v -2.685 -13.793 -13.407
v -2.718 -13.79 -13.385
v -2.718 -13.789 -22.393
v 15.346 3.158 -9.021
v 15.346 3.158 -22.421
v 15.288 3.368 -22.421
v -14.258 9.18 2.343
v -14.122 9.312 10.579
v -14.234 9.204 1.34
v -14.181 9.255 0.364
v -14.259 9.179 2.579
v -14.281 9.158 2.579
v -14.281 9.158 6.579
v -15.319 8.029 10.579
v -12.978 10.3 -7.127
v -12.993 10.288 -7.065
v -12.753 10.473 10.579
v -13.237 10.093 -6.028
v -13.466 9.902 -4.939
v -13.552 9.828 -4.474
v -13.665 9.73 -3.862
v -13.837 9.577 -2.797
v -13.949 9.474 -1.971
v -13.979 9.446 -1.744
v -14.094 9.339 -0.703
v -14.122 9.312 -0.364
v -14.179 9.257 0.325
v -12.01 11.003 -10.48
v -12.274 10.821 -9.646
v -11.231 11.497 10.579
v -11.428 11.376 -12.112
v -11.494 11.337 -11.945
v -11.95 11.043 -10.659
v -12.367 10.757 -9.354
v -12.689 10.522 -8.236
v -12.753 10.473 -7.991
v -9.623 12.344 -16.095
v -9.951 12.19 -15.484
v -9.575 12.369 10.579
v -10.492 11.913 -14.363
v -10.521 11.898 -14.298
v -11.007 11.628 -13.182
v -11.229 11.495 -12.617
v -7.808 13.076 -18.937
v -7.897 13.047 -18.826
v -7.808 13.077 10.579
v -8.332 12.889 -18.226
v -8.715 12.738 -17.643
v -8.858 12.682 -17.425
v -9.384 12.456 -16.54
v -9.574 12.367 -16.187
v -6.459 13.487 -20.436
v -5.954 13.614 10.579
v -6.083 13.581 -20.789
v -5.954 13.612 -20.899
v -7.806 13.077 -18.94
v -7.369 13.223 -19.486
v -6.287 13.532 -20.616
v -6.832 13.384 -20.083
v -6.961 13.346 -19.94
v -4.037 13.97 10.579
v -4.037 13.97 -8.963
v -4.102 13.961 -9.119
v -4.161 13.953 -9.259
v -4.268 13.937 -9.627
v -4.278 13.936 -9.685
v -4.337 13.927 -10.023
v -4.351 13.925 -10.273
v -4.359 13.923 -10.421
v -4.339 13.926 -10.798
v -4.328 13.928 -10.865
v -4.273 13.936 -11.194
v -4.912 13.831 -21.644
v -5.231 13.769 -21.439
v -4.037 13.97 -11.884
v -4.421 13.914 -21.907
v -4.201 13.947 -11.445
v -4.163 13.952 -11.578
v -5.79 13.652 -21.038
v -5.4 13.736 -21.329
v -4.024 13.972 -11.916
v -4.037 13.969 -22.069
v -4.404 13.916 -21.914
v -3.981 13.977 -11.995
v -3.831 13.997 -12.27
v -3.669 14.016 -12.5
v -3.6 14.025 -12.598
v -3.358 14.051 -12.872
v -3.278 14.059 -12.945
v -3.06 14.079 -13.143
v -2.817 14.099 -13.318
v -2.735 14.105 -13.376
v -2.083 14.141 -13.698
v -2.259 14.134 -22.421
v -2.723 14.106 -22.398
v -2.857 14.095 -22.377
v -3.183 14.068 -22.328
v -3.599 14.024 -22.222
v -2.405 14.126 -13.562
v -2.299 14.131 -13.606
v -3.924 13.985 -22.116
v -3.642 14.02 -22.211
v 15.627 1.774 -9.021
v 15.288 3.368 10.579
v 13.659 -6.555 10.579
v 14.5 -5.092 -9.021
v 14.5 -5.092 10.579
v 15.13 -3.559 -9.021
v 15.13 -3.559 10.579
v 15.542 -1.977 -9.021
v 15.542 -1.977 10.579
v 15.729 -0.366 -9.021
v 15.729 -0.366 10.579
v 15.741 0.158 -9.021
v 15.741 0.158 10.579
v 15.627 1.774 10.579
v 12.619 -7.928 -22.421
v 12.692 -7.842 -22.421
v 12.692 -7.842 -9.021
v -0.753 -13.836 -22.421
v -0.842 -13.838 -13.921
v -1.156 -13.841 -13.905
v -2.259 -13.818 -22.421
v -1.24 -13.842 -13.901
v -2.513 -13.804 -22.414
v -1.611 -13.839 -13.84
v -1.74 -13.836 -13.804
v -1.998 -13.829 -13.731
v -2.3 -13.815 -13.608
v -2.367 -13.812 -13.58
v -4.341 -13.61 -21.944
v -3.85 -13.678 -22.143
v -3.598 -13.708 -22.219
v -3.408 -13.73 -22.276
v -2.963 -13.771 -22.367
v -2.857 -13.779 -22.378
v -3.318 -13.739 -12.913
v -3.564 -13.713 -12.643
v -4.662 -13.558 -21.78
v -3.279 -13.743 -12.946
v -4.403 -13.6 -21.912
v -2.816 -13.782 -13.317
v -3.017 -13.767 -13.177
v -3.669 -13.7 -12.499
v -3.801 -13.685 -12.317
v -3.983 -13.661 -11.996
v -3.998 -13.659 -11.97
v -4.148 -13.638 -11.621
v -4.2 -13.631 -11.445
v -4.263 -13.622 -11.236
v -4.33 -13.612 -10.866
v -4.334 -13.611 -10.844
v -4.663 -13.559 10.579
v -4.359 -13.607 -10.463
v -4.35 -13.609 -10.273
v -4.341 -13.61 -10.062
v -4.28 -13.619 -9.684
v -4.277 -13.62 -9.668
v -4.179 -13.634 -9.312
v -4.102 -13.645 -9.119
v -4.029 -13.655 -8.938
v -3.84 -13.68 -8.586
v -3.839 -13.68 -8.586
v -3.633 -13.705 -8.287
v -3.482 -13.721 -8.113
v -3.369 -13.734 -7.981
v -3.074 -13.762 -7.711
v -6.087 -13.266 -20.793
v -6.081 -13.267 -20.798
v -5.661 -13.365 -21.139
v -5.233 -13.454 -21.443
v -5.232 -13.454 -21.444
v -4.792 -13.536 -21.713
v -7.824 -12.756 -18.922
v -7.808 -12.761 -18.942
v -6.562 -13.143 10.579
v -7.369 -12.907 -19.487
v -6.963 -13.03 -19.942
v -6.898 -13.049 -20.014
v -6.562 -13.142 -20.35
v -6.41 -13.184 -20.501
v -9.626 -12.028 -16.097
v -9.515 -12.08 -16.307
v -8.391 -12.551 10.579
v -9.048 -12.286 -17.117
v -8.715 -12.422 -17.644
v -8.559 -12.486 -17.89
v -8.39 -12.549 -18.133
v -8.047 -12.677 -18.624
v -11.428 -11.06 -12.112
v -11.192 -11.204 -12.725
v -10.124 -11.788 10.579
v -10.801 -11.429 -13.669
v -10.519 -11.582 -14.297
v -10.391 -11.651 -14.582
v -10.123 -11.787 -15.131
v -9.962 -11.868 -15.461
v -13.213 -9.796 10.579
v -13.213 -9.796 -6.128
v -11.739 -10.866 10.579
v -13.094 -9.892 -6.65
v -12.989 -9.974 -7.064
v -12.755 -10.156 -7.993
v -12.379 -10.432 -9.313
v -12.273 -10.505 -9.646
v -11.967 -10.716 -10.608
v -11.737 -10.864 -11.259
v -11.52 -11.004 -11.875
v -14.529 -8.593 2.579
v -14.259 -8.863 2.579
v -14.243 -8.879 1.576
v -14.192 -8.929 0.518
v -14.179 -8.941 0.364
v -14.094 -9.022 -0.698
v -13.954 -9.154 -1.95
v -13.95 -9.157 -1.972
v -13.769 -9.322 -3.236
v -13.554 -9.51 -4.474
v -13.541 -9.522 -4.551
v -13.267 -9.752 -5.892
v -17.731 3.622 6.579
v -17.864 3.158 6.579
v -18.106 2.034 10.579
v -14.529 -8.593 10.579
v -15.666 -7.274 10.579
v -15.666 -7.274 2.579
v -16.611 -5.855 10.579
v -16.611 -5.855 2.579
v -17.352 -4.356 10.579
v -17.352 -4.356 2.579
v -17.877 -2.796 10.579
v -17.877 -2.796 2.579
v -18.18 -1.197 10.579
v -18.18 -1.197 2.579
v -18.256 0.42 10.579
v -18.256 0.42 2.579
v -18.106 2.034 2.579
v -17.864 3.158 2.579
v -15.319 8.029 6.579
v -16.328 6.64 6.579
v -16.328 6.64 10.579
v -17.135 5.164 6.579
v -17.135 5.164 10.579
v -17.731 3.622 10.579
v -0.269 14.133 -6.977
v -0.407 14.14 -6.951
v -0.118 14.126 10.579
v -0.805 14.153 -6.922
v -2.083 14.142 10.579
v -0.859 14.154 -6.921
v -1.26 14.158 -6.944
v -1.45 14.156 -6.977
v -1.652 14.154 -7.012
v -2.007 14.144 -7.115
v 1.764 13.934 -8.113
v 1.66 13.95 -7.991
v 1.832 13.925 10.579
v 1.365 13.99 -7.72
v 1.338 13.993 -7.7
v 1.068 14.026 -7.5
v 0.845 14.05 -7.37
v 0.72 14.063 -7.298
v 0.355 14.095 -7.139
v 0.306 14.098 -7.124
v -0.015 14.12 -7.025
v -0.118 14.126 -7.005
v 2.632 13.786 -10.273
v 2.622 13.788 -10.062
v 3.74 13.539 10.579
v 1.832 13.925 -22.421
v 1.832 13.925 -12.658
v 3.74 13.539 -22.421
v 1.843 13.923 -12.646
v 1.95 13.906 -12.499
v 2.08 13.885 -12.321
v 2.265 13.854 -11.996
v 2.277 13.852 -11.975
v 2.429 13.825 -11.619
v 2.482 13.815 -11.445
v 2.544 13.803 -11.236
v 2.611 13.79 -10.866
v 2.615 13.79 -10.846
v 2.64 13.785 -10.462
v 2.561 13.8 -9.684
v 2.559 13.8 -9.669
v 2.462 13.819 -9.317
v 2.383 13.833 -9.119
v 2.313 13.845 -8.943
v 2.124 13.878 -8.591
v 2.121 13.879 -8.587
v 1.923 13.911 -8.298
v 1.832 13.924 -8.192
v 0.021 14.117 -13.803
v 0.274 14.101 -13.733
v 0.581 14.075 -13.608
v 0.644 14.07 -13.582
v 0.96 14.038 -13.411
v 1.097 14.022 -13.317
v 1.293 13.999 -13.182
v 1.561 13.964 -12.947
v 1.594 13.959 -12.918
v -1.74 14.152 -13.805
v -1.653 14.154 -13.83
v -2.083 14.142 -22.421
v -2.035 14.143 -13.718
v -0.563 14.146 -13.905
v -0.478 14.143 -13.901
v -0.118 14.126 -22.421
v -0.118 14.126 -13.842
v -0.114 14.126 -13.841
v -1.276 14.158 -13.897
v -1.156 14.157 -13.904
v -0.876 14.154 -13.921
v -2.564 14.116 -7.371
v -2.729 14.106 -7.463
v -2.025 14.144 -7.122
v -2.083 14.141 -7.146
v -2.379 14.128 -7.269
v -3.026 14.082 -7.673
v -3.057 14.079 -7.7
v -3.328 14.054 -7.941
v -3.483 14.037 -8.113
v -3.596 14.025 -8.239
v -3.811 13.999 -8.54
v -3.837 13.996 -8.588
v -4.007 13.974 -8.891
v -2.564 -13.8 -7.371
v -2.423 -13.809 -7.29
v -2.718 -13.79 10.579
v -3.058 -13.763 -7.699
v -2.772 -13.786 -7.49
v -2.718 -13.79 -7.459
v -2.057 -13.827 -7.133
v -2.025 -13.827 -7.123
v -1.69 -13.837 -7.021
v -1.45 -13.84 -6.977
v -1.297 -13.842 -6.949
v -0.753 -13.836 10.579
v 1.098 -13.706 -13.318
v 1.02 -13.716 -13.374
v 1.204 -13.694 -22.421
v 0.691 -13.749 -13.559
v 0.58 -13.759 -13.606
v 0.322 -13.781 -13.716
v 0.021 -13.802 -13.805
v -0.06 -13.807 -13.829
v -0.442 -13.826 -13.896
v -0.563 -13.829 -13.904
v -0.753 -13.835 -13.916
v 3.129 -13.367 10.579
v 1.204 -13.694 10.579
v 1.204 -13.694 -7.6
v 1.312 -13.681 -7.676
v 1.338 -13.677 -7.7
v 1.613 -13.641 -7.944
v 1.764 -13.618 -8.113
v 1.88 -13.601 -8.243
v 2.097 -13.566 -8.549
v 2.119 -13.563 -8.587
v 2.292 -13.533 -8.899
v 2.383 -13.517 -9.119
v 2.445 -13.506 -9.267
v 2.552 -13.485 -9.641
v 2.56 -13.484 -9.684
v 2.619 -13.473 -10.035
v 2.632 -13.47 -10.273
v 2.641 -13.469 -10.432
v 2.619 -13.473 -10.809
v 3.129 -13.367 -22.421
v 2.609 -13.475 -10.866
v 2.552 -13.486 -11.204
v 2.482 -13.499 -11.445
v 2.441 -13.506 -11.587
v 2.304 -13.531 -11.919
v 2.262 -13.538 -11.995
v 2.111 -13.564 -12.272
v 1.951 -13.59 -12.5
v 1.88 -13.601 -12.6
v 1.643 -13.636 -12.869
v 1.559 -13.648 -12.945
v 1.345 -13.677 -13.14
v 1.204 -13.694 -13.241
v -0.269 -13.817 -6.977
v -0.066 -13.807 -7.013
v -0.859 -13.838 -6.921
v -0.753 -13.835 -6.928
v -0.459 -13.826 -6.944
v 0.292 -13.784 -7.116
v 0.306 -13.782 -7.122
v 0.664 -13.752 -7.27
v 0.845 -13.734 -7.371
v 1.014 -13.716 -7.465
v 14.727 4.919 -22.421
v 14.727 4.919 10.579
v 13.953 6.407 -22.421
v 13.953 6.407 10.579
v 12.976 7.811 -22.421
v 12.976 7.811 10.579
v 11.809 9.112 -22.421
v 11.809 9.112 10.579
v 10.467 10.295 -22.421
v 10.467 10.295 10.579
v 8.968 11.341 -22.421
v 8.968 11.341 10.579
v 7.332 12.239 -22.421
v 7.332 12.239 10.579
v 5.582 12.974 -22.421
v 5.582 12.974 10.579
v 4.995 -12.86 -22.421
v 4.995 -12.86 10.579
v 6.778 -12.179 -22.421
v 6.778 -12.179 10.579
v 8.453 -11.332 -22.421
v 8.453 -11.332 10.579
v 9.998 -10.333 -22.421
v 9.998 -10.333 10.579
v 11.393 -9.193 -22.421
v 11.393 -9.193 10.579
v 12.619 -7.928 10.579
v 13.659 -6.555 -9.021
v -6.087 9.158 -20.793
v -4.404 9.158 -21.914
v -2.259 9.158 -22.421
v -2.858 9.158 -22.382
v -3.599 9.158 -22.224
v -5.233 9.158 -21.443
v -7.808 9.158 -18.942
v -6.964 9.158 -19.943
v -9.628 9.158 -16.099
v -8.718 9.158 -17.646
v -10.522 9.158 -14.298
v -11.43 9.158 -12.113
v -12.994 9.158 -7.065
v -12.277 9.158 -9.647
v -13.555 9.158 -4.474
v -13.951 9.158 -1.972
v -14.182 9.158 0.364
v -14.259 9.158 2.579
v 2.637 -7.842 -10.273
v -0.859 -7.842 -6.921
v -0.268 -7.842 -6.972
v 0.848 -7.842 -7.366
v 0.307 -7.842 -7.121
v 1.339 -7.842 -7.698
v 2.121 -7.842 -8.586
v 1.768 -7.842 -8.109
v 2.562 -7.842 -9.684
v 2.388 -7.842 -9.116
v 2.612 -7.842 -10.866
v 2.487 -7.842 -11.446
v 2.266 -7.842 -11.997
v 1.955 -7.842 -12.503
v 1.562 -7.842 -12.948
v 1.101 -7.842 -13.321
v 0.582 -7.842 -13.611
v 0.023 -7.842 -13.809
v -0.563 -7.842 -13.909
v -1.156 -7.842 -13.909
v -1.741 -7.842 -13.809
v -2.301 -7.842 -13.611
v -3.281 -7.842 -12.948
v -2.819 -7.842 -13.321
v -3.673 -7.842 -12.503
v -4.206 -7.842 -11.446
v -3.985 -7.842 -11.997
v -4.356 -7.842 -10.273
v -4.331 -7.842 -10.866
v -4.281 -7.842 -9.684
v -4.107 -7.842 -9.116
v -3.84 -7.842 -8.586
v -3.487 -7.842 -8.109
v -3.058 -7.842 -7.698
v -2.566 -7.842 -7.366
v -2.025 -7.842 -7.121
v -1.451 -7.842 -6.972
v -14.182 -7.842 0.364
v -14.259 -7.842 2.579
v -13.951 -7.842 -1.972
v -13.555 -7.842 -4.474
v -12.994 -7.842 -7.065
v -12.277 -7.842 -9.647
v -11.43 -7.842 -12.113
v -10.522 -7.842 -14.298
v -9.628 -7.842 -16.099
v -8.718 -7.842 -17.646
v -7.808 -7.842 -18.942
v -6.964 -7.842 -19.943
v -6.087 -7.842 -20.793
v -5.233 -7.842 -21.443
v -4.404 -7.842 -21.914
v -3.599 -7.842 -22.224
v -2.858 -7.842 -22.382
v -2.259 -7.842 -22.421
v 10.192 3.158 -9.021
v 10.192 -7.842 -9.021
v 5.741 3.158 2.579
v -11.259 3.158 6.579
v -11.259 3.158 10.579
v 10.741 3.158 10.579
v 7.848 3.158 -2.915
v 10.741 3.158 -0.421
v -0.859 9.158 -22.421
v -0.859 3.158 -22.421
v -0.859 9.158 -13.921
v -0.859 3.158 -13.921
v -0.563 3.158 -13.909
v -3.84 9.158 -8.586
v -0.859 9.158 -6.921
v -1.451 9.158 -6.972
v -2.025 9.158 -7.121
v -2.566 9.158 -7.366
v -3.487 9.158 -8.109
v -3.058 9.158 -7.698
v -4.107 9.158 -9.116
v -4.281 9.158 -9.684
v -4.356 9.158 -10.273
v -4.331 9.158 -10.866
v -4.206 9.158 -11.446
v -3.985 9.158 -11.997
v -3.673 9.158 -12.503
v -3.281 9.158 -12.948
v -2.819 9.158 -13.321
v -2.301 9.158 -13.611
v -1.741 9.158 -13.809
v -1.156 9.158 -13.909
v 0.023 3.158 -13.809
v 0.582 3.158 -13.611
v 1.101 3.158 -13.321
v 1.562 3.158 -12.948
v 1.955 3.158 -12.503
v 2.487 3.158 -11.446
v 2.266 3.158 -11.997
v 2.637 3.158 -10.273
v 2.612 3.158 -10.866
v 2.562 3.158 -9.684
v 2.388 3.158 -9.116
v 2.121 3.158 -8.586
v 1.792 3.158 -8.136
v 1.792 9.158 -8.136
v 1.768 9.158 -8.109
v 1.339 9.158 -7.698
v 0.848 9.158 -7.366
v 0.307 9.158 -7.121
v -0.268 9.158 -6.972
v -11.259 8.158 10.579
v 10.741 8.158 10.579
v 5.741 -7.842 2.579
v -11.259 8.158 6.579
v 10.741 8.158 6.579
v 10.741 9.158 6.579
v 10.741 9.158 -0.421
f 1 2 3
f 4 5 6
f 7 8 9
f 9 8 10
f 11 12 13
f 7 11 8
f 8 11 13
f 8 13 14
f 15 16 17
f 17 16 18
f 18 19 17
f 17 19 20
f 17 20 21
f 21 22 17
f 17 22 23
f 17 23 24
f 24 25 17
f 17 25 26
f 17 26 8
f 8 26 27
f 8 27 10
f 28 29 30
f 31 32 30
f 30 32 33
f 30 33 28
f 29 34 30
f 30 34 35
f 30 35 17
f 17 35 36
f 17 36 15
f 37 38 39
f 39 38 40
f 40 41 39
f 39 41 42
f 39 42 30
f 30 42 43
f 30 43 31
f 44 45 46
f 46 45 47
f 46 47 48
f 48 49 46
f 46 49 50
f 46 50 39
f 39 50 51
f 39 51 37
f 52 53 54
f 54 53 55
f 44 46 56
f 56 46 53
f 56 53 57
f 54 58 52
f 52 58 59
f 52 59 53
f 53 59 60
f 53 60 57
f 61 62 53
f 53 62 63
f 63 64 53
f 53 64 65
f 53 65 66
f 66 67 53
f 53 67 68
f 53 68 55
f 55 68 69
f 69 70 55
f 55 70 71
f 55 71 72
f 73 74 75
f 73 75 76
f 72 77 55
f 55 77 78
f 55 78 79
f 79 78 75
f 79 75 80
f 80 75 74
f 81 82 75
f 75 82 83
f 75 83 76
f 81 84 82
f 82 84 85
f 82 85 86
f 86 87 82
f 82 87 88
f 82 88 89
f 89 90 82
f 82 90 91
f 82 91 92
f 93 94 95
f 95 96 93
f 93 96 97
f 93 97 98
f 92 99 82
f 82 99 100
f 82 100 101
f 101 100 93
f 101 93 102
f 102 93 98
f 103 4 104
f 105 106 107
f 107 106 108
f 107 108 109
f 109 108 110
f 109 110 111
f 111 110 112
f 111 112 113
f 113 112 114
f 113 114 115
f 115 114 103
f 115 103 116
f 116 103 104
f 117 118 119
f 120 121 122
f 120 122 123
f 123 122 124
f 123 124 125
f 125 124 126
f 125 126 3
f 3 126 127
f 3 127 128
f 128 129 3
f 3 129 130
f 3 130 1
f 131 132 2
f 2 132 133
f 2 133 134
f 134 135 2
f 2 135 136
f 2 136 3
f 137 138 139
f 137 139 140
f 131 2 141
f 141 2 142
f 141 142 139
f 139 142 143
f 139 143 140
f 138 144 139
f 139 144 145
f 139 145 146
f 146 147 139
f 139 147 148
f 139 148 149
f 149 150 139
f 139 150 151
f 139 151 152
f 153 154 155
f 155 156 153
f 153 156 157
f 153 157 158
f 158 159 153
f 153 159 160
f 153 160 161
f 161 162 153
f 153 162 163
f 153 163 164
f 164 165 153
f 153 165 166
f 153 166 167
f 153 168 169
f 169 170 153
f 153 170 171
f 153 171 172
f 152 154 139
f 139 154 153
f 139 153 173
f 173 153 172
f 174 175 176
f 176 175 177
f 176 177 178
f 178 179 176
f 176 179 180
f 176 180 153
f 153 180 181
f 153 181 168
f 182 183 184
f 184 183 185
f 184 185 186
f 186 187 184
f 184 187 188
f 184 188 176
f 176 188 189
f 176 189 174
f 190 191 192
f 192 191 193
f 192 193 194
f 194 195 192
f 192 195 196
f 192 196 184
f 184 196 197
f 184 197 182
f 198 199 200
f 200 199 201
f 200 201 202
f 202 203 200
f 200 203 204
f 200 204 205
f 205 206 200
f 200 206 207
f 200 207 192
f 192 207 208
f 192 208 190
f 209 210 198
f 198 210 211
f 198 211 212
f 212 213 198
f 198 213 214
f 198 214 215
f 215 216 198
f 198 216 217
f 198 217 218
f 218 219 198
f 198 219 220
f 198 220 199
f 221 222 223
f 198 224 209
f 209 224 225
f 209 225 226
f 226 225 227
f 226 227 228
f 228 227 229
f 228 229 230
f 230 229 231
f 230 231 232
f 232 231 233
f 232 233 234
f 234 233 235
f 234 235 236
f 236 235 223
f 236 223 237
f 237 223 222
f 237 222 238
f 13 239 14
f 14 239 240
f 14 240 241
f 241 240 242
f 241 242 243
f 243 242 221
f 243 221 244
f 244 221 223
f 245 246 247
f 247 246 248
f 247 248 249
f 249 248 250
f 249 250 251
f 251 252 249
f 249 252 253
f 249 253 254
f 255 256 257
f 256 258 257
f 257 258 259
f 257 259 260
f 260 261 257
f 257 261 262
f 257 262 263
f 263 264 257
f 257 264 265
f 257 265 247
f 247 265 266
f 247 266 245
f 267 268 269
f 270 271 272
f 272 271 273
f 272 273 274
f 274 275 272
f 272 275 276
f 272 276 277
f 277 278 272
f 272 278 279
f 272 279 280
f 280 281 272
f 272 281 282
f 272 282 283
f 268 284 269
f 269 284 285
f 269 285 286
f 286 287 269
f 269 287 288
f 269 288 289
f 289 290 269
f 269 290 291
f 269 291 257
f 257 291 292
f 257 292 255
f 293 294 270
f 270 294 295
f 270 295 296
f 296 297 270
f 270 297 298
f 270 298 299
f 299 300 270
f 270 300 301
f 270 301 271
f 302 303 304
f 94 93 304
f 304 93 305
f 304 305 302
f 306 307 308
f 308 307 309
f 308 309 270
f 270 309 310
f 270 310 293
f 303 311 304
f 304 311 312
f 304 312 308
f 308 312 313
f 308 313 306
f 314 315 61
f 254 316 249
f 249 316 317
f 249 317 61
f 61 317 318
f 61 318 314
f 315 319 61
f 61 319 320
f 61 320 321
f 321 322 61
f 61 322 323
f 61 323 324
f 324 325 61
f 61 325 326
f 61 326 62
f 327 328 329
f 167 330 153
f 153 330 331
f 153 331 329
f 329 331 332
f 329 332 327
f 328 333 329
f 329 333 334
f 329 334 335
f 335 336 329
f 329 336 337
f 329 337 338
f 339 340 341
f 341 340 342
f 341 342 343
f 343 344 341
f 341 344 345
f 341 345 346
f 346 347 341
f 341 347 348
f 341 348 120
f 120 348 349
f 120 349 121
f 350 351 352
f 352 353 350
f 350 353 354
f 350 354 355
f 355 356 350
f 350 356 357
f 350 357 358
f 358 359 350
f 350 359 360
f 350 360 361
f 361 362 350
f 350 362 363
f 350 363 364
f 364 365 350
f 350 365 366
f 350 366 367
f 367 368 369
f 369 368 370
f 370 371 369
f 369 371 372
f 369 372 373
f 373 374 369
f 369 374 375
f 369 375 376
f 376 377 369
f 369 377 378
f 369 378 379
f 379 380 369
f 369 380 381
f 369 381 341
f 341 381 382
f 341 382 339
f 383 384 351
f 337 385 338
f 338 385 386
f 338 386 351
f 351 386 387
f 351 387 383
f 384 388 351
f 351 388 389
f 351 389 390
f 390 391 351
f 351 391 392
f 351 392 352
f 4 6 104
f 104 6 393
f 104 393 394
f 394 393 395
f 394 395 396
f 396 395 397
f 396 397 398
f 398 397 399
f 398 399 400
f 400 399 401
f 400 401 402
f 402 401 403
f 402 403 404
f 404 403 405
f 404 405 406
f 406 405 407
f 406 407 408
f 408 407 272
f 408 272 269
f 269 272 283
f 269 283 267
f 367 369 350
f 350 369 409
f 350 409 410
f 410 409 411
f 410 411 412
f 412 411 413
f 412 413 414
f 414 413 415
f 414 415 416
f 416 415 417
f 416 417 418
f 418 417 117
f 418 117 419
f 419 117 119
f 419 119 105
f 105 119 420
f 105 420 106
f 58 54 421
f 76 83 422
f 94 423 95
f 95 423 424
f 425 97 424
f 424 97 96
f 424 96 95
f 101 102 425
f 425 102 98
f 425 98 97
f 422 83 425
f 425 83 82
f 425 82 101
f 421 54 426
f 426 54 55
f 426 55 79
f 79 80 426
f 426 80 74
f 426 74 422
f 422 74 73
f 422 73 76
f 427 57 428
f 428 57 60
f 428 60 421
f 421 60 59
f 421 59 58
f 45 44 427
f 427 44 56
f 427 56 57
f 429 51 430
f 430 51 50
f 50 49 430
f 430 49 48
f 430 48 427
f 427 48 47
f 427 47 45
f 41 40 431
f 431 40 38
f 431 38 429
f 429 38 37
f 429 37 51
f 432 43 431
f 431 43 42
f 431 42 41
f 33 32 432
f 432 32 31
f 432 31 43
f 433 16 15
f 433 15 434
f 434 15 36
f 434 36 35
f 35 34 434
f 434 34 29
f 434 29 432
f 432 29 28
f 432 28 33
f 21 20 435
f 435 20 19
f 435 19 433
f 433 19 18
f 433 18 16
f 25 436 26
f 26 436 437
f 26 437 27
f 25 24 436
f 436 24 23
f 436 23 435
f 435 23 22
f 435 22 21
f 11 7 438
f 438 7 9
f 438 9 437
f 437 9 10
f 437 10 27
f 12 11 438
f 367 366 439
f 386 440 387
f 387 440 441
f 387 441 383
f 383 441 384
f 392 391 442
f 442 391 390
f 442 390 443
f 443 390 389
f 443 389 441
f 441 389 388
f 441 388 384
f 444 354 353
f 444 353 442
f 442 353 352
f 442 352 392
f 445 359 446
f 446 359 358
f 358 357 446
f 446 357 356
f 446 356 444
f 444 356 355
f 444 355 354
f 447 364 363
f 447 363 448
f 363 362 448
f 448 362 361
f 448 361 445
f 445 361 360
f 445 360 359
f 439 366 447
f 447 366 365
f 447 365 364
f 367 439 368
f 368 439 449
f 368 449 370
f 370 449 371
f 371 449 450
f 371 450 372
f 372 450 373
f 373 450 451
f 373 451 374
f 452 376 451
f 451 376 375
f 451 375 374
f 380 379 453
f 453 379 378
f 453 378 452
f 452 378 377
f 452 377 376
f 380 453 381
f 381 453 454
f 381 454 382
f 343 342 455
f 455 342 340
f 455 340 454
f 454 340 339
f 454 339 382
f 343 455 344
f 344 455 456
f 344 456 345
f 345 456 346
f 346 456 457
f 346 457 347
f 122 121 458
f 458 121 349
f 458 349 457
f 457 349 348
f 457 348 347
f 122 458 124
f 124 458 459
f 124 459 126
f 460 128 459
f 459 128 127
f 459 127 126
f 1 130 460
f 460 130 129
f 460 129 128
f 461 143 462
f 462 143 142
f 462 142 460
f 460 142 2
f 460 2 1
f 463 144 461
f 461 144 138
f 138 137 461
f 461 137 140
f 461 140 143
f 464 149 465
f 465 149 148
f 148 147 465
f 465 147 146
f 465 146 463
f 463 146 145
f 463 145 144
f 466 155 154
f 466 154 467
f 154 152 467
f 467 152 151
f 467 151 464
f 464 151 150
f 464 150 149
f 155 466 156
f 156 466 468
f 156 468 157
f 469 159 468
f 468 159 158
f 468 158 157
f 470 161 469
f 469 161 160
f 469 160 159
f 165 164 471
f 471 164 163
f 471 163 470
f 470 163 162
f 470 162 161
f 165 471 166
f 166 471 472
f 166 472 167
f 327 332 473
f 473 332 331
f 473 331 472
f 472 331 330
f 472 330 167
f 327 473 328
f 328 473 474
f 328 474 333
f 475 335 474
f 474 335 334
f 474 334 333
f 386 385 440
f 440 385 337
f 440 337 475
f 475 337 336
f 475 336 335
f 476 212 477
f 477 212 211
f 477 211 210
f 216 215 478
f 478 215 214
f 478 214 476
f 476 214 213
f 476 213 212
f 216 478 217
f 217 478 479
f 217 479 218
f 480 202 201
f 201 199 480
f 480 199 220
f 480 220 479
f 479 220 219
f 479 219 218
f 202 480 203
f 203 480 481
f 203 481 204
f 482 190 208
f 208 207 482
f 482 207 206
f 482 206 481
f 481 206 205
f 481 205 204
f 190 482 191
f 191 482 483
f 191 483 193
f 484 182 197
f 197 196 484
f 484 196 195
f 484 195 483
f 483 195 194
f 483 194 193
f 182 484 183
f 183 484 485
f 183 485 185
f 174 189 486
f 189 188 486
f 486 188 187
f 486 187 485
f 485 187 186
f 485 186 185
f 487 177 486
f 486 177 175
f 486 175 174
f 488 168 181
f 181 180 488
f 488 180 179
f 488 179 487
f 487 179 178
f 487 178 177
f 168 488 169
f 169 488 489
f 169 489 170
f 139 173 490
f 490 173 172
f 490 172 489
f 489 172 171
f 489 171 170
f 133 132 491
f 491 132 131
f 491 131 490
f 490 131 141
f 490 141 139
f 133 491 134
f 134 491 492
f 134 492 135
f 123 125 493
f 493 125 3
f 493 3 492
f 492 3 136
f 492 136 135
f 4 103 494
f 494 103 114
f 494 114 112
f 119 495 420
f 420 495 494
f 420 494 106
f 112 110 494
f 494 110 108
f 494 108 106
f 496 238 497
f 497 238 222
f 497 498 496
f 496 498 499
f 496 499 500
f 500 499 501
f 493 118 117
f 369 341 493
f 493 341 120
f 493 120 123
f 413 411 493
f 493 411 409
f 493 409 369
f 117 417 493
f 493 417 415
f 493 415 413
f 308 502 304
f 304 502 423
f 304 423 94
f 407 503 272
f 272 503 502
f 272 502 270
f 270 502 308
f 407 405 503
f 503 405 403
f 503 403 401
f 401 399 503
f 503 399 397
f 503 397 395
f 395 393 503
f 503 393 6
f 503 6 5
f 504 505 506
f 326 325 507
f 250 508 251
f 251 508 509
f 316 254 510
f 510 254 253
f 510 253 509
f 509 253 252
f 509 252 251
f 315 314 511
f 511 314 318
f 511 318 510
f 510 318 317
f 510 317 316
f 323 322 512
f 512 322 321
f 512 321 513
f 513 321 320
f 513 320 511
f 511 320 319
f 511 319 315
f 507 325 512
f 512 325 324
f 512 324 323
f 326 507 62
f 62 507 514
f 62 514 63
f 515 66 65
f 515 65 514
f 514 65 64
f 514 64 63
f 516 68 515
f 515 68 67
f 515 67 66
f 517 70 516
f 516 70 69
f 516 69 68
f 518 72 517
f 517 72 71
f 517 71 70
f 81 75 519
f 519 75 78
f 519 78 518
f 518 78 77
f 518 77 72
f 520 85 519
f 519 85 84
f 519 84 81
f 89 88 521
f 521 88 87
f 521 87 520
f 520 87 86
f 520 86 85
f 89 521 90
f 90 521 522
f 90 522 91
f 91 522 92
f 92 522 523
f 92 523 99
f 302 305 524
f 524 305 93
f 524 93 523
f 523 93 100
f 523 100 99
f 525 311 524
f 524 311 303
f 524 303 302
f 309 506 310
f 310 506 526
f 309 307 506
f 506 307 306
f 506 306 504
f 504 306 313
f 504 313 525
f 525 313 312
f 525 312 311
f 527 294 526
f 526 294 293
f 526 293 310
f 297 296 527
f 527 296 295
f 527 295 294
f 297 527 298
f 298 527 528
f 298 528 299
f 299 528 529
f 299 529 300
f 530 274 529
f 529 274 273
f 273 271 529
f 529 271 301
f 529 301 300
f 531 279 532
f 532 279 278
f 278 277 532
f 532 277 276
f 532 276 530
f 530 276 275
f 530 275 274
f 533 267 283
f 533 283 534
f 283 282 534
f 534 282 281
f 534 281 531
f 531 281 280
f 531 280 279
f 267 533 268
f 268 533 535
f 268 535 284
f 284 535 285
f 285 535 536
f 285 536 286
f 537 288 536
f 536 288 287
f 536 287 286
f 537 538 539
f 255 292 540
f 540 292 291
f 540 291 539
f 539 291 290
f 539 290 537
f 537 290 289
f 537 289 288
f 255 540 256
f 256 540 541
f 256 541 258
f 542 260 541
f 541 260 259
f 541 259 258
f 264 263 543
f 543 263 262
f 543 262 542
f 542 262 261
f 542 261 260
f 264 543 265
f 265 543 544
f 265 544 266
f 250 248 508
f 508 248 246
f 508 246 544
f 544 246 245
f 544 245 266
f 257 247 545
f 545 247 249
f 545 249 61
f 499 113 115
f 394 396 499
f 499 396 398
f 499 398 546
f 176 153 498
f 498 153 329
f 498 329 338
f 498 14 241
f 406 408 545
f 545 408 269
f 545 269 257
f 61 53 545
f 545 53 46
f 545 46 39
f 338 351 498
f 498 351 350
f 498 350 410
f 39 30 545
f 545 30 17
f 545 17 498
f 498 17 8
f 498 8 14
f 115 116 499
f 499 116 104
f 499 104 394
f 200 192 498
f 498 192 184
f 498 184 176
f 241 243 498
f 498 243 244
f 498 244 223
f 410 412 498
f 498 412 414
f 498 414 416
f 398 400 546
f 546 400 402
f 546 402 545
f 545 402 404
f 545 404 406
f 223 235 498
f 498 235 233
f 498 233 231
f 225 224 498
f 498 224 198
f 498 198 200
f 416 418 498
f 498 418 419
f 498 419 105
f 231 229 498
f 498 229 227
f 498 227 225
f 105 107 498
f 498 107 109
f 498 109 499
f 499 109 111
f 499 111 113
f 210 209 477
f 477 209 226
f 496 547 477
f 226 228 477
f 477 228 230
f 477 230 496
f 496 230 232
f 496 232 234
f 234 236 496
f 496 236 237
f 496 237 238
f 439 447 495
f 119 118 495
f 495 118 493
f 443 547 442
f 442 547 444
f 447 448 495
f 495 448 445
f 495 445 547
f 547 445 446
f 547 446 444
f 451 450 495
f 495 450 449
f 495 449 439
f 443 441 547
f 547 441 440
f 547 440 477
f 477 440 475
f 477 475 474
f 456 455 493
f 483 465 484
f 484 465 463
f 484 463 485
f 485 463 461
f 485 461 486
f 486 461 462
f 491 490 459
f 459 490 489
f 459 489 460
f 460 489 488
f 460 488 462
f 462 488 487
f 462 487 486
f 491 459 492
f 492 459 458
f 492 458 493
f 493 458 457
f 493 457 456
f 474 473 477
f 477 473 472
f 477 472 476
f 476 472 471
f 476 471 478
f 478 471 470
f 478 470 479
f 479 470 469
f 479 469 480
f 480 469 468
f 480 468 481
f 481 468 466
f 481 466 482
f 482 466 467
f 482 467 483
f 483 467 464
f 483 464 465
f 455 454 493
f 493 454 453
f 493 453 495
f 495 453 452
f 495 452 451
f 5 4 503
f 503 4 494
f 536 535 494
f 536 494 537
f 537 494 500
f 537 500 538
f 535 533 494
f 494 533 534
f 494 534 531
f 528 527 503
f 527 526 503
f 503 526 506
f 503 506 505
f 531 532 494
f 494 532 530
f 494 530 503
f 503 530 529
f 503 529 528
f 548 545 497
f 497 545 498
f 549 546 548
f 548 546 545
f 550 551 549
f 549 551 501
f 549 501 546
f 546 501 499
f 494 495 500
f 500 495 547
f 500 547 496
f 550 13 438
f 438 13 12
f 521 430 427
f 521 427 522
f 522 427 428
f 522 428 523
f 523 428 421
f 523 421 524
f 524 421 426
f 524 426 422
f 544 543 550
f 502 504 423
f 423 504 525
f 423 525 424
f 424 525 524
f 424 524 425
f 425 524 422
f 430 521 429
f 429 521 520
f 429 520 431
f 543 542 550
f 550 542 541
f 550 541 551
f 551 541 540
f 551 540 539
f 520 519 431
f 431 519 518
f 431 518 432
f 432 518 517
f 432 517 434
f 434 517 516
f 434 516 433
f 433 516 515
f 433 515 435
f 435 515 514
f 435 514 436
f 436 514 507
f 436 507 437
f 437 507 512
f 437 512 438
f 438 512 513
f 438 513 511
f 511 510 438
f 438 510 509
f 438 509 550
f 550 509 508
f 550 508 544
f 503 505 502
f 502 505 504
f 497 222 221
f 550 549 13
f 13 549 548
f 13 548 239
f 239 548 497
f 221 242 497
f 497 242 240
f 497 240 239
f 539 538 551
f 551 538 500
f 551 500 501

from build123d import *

# Parameters (mm, degrees)
SKETCH1_RX          = 8.5
SKETCH1_RY          = 7
BOSS_EXTRUDE1_DEPTH = 4
SKETCH5_RX          = 8.5
SKETCH5_RY          = 7
BOSS_EXTRUDE2_DEPTH = 12.5
SKETCH6_R           = 1.75
CUT_EXTRUDE1_DEPTH  = 20
SKETCH8_W           = 17
SKETCH8_H           = 5.5
CUT_EXTRUDE4_DEPTH  = 6.7
SKETCH9_W           = 11
SKETCH9_H           = 2.5
CUT_EXTRUDE5_DEPTH  = 5.5
CUT_EXTRUDE7_DEPTH  = 5.5
CUT_EXTRUDE8_DEPTH  = 3
SCALE1_SCALE        = 2


with BuildPart() as part:
    # Sketch1 → Boss-Extrude1 (new body)
    with BuildSketch(Plane.XY):
        with Locations(Location((0, 0), (0, 0, 0))):
            Ellipse(SKETCH1_RX, SKETCH1_RY)
    extrude(amount=BOSS_EXTRUDE1_DEPTH)

    # Sketch5 → Boss-Extrude2 (add)
    with BuildSketch(Plane(origin=(0, 0, 0), x_dir=(-1, 0, 0), z_dir=(0, 0, -1))):
        with Locations(Location((0, 0), (0, 0, -180))):
            Ellipse(SKETCH5_RX, SKETCH5_RY)
    extrude(amount=BOSS_EXTRUDE2_DEPTH)

    # Sketch6 → Cut-Extrude1 (cut)
    with BuildSketch(Plane(origin=(0, 10, 0), x_dir=(1, 0, 0), z_dir=(0, 1, 0))):
        with Locations(Location((0.2, 6.5, 0), (0, 0, 270))):
            Circle(SKETCH6_R)
        with BuildLine():
            Line((-8.5, 12.5), (-8.5, 0))
            Line((-8.5, 0), (-6.5, 0))
            add(Edge.make_bspline(
                [(-6.5, 0), (-6.5, 5.077021549), (-3.853880334, 12.5), (-0.5, 12.5)],
                knots=[0, 0, 0, 0, 1, 1, 1, 1], degree=3))
            Line((-0.5, 12.5), (-8.5, 12.5))
        make_face()
    extrude(amount=-CUT_EXTRUDE1_DEPTH, mode=Mode.SUBTRACT)

    # Sketch8 → Cut-Extrude4 (cut)
    with BuildSketch(Plane.XY.offset(-12.5)):
        with Locations((0, -1.25)):
            Rectangle(SKETCH8_W, SKETCH8_H)
    extrude(amount=CUT_EXTRUDE4_DEPTH, mode=Mode.SUBTRACT)

    # Sketch9 → Cut-Extrude5 (cut)
    with BuildSketch(Plane.XY.offset(4)):
        with Locations((0.5, 2.75)):
            Rectangle(SKETCH9_W, SKETCH9_H)
    extrude(amount=-CUT_EXTRUDE5_DEPTH, mode=Mode.SUBTRACT)

    # Sketch10 → Cut-Extrude7 (cut)
    with BuildSketch(Plane(origin=(0, -4, 0), x_dir=(1, 0, 0), z_dir=(0, 1, 0))):
        Polygon((-8.5, 0), (3.5, 0), (5.725540357, 5.8), (-8.5, 5.8), align=None)
    extrude(amount=CUT_EXTRUDE7_DEPTH, mode=Mode.SUBTRACT)

    # Sketch11 → Cut-Extrude8 (cut)
    with BuildSketch(Plane(origin=(0, 1.5, 0), x_dir=(-1, 0, 0), z_dir=(0, -1, 0))):
        Polygon((-0.2, 6.5), (-0.2, 12.5), (8.5, 12.5), (8.5, 1.5), (8.5, -2), (-6, -2), (-6, 1.5), align=None)
    extrude(amount=-CUT_EXTRUDE8_DEPTH, mode=Mode.SUBTRACT)


with BuildPart() as part_1:
    # Scale1: scaled about (1.259390776, -0.158043462, -2.5785604)
    add(part.part.scale(SCALE1_SCALE).moved(Location((-1.259390776, 0.158043462, 2.5785604))))


solid = part_1.part
